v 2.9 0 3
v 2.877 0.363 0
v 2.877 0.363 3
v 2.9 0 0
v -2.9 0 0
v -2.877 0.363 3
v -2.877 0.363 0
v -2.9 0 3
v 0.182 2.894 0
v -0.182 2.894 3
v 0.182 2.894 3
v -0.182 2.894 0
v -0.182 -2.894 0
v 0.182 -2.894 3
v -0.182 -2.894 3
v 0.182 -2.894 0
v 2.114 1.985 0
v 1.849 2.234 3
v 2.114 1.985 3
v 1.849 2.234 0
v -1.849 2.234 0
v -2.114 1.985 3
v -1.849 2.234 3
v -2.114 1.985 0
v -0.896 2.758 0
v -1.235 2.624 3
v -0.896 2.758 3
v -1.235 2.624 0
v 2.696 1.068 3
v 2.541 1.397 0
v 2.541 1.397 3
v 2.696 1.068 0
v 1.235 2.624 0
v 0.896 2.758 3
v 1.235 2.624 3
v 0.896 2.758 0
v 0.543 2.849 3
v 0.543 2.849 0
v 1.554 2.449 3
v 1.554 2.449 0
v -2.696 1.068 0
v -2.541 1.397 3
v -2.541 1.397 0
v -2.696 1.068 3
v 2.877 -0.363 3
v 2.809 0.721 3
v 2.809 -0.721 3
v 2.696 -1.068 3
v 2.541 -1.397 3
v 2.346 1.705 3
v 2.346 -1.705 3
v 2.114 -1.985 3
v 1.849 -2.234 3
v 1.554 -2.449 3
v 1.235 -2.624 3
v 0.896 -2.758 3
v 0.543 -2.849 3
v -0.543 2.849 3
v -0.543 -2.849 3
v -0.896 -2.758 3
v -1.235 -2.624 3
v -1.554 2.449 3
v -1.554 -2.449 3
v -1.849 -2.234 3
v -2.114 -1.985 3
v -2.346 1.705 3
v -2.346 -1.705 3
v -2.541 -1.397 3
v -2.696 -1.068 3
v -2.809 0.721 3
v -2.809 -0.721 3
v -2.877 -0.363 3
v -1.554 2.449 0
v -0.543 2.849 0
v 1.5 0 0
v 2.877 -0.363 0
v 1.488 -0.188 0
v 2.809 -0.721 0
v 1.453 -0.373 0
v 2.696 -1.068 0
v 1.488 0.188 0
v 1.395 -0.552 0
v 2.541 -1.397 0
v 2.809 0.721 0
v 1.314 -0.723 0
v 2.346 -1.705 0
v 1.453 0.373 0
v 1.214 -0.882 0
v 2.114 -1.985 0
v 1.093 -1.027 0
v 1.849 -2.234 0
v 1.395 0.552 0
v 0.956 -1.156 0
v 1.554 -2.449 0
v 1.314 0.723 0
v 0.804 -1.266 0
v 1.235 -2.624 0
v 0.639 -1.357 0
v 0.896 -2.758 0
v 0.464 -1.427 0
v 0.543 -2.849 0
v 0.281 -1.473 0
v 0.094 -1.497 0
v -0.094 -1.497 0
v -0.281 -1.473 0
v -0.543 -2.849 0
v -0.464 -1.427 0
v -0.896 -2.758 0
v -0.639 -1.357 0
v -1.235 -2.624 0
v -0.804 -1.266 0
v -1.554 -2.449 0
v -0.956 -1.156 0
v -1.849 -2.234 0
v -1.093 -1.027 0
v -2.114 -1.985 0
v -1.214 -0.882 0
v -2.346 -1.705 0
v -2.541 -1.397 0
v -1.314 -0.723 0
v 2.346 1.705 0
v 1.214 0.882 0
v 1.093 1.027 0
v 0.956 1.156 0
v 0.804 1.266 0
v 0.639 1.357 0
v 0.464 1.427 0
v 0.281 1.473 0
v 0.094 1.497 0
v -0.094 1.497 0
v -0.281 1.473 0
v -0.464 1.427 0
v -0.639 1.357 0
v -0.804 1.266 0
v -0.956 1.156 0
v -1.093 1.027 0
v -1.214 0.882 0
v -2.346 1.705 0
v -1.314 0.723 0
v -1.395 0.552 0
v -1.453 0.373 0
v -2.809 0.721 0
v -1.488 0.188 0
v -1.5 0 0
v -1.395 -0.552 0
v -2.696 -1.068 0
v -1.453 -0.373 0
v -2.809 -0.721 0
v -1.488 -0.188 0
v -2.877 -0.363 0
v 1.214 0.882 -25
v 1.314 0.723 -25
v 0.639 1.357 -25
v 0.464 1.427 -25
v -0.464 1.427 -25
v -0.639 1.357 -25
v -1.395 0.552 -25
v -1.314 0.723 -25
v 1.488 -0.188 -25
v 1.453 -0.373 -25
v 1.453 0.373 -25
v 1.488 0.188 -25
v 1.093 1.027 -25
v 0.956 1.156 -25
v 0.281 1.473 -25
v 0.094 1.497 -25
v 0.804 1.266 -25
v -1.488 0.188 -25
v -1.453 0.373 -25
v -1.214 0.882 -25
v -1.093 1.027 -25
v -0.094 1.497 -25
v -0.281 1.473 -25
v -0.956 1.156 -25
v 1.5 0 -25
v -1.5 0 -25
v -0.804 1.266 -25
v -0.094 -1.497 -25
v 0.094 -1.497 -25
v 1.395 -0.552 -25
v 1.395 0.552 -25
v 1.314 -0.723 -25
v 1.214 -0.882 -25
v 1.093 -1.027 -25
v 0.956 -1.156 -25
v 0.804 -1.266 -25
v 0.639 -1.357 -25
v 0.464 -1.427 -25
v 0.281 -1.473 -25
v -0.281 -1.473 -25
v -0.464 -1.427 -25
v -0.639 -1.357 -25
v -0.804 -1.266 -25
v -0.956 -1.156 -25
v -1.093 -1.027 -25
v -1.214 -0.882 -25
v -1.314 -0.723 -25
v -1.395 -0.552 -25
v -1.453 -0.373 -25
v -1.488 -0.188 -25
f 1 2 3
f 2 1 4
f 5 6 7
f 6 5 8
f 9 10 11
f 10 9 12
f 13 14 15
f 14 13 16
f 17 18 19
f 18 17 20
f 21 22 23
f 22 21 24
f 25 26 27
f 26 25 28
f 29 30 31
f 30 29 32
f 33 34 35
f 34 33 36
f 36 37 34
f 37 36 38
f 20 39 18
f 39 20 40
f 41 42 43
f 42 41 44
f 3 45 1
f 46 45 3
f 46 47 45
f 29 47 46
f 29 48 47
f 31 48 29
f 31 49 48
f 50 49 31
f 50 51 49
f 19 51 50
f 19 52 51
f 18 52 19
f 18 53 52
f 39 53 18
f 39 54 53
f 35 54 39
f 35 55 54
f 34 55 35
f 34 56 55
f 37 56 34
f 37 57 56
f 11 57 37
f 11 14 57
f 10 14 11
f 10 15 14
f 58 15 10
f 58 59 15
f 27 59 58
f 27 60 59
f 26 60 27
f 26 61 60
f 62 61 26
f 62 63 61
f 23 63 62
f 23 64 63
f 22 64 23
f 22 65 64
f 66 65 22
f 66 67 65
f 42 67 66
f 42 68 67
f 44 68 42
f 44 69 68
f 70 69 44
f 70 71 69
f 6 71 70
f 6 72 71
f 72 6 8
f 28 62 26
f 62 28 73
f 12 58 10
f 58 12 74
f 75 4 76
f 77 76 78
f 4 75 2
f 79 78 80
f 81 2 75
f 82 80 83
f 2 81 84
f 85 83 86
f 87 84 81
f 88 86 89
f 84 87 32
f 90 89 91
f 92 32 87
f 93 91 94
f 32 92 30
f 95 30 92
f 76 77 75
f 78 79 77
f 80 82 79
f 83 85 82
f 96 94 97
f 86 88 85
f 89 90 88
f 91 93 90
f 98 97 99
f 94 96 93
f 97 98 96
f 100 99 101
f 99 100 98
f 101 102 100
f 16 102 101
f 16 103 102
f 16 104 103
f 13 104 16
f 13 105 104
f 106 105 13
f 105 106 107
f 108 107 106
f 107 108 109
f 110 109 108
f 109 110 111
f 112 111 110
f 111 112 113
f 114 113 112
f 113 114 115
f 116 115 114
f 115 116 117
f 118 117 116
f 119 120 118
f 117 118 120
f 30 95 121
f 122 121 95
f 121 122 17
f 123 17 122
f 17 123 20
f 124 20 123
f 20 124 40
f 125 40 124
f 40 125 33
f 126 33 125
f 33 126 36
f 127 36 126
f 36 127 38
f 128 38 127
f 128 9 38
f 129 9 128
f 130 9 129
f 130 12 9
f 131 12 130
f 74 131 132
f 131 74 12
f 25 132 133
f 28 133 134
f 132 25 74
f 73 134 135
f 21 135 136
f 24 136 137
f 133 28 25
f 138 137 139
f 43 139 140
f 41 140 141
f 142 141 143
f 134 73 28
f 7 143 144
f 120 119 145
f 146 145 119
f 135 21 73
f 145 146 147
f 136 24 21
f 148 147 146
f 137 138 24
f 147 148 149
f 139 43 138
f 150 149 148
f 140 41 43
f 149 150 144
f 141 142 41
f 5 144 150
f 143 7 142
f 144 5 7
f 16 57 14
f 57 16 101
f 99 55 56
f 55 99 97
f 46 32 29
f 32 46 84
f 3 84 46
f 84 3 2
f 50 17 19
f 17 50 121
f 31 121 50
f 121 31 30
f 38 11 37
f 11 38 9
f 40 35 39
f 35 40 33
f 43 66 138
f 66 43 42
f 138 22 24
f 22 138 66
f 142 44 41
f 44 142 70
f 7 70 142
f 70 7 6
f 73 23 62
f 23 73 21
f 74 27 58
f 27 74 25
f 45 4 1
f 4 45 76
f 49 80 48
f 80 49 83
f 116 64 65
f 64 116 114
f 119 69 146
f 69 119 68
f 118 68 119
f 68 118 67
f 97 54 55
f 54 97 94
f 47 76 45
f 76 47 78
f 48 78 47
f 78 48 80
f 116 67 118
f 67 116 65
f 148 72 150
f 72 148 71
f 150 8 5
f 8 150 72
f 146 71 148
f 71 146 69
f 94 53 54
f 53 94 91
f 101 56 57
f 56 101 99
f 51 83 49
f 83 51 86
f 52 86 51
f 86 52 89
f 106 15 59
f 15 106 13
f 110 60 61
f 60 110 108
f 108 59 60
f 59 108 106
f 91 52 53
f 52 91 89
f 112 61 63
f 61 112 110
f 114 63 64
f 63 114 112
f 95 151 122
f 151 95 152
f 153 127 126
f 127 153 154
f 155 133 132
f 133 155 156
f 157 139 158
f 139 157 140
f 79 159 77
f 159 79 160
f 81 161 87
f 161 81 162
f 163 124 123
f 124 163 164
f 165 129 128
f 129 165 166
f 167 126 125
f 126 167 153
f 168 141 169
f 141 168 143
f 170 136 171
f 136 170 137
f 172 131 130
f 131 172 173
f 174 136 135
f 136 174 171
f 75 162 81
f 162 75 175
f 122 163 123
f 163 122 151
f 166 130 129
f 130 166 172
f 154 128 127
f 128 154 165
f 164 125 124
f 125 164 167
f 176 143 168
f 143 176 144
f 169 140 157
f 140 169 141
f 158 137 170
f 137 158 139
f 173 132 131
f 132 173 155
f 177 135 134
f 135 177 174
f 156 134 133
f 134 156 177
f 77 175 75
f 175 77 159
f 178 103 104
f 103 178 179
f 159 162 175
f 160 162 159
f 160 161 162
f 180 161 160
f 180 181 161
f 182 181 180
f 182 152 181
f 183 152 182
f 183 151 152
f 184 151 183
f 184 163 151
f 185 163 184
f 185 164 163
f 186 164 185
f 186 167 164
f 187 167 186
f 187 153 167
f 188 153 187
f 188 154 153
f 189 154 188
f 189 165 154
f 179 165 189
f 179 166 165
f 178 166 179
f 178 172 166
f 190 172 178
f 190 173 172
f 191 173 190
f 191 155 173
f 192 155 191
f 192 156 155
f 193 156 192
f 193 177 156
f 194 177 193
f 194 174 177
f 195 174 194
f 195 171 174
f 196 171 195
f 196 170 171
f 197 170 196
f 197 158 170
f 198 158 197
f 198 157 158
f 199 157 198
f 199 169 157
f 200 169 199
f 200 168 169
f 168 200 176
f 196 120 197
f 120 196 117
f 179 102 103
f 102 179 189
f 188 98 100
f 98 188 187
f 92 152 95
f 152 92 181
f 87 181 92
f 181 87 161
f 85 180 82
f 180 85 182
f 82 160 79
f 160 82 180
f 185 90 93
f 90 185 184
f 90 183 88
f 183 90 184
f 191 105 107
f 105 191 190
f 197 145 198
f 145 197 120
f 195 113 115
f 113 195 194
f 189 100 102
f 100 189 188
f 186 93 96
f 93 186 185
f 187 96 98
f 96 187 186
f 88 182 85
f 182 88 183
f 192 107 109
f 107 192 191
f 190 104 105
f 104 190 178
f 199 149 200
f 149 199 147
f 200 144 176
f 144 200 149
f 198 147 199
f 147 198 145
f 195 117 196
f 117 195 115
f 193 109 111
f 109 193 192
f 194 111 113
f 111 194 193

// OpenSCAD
$fn = 50;


difference() {
	union() {
		translate(v = [0, 0, 0]) {
			rotate(a = [0, 0, 0]) {
				cylinder(h = 3, r = 2.9000000000);
			}
		}
		translate(v = [0, 0, -25]) {
			rotate(a = [0, 0, 0]) {
				cylinder(h = 25, r = 1.5000000000);
			}
		}
	}
	union();
}
